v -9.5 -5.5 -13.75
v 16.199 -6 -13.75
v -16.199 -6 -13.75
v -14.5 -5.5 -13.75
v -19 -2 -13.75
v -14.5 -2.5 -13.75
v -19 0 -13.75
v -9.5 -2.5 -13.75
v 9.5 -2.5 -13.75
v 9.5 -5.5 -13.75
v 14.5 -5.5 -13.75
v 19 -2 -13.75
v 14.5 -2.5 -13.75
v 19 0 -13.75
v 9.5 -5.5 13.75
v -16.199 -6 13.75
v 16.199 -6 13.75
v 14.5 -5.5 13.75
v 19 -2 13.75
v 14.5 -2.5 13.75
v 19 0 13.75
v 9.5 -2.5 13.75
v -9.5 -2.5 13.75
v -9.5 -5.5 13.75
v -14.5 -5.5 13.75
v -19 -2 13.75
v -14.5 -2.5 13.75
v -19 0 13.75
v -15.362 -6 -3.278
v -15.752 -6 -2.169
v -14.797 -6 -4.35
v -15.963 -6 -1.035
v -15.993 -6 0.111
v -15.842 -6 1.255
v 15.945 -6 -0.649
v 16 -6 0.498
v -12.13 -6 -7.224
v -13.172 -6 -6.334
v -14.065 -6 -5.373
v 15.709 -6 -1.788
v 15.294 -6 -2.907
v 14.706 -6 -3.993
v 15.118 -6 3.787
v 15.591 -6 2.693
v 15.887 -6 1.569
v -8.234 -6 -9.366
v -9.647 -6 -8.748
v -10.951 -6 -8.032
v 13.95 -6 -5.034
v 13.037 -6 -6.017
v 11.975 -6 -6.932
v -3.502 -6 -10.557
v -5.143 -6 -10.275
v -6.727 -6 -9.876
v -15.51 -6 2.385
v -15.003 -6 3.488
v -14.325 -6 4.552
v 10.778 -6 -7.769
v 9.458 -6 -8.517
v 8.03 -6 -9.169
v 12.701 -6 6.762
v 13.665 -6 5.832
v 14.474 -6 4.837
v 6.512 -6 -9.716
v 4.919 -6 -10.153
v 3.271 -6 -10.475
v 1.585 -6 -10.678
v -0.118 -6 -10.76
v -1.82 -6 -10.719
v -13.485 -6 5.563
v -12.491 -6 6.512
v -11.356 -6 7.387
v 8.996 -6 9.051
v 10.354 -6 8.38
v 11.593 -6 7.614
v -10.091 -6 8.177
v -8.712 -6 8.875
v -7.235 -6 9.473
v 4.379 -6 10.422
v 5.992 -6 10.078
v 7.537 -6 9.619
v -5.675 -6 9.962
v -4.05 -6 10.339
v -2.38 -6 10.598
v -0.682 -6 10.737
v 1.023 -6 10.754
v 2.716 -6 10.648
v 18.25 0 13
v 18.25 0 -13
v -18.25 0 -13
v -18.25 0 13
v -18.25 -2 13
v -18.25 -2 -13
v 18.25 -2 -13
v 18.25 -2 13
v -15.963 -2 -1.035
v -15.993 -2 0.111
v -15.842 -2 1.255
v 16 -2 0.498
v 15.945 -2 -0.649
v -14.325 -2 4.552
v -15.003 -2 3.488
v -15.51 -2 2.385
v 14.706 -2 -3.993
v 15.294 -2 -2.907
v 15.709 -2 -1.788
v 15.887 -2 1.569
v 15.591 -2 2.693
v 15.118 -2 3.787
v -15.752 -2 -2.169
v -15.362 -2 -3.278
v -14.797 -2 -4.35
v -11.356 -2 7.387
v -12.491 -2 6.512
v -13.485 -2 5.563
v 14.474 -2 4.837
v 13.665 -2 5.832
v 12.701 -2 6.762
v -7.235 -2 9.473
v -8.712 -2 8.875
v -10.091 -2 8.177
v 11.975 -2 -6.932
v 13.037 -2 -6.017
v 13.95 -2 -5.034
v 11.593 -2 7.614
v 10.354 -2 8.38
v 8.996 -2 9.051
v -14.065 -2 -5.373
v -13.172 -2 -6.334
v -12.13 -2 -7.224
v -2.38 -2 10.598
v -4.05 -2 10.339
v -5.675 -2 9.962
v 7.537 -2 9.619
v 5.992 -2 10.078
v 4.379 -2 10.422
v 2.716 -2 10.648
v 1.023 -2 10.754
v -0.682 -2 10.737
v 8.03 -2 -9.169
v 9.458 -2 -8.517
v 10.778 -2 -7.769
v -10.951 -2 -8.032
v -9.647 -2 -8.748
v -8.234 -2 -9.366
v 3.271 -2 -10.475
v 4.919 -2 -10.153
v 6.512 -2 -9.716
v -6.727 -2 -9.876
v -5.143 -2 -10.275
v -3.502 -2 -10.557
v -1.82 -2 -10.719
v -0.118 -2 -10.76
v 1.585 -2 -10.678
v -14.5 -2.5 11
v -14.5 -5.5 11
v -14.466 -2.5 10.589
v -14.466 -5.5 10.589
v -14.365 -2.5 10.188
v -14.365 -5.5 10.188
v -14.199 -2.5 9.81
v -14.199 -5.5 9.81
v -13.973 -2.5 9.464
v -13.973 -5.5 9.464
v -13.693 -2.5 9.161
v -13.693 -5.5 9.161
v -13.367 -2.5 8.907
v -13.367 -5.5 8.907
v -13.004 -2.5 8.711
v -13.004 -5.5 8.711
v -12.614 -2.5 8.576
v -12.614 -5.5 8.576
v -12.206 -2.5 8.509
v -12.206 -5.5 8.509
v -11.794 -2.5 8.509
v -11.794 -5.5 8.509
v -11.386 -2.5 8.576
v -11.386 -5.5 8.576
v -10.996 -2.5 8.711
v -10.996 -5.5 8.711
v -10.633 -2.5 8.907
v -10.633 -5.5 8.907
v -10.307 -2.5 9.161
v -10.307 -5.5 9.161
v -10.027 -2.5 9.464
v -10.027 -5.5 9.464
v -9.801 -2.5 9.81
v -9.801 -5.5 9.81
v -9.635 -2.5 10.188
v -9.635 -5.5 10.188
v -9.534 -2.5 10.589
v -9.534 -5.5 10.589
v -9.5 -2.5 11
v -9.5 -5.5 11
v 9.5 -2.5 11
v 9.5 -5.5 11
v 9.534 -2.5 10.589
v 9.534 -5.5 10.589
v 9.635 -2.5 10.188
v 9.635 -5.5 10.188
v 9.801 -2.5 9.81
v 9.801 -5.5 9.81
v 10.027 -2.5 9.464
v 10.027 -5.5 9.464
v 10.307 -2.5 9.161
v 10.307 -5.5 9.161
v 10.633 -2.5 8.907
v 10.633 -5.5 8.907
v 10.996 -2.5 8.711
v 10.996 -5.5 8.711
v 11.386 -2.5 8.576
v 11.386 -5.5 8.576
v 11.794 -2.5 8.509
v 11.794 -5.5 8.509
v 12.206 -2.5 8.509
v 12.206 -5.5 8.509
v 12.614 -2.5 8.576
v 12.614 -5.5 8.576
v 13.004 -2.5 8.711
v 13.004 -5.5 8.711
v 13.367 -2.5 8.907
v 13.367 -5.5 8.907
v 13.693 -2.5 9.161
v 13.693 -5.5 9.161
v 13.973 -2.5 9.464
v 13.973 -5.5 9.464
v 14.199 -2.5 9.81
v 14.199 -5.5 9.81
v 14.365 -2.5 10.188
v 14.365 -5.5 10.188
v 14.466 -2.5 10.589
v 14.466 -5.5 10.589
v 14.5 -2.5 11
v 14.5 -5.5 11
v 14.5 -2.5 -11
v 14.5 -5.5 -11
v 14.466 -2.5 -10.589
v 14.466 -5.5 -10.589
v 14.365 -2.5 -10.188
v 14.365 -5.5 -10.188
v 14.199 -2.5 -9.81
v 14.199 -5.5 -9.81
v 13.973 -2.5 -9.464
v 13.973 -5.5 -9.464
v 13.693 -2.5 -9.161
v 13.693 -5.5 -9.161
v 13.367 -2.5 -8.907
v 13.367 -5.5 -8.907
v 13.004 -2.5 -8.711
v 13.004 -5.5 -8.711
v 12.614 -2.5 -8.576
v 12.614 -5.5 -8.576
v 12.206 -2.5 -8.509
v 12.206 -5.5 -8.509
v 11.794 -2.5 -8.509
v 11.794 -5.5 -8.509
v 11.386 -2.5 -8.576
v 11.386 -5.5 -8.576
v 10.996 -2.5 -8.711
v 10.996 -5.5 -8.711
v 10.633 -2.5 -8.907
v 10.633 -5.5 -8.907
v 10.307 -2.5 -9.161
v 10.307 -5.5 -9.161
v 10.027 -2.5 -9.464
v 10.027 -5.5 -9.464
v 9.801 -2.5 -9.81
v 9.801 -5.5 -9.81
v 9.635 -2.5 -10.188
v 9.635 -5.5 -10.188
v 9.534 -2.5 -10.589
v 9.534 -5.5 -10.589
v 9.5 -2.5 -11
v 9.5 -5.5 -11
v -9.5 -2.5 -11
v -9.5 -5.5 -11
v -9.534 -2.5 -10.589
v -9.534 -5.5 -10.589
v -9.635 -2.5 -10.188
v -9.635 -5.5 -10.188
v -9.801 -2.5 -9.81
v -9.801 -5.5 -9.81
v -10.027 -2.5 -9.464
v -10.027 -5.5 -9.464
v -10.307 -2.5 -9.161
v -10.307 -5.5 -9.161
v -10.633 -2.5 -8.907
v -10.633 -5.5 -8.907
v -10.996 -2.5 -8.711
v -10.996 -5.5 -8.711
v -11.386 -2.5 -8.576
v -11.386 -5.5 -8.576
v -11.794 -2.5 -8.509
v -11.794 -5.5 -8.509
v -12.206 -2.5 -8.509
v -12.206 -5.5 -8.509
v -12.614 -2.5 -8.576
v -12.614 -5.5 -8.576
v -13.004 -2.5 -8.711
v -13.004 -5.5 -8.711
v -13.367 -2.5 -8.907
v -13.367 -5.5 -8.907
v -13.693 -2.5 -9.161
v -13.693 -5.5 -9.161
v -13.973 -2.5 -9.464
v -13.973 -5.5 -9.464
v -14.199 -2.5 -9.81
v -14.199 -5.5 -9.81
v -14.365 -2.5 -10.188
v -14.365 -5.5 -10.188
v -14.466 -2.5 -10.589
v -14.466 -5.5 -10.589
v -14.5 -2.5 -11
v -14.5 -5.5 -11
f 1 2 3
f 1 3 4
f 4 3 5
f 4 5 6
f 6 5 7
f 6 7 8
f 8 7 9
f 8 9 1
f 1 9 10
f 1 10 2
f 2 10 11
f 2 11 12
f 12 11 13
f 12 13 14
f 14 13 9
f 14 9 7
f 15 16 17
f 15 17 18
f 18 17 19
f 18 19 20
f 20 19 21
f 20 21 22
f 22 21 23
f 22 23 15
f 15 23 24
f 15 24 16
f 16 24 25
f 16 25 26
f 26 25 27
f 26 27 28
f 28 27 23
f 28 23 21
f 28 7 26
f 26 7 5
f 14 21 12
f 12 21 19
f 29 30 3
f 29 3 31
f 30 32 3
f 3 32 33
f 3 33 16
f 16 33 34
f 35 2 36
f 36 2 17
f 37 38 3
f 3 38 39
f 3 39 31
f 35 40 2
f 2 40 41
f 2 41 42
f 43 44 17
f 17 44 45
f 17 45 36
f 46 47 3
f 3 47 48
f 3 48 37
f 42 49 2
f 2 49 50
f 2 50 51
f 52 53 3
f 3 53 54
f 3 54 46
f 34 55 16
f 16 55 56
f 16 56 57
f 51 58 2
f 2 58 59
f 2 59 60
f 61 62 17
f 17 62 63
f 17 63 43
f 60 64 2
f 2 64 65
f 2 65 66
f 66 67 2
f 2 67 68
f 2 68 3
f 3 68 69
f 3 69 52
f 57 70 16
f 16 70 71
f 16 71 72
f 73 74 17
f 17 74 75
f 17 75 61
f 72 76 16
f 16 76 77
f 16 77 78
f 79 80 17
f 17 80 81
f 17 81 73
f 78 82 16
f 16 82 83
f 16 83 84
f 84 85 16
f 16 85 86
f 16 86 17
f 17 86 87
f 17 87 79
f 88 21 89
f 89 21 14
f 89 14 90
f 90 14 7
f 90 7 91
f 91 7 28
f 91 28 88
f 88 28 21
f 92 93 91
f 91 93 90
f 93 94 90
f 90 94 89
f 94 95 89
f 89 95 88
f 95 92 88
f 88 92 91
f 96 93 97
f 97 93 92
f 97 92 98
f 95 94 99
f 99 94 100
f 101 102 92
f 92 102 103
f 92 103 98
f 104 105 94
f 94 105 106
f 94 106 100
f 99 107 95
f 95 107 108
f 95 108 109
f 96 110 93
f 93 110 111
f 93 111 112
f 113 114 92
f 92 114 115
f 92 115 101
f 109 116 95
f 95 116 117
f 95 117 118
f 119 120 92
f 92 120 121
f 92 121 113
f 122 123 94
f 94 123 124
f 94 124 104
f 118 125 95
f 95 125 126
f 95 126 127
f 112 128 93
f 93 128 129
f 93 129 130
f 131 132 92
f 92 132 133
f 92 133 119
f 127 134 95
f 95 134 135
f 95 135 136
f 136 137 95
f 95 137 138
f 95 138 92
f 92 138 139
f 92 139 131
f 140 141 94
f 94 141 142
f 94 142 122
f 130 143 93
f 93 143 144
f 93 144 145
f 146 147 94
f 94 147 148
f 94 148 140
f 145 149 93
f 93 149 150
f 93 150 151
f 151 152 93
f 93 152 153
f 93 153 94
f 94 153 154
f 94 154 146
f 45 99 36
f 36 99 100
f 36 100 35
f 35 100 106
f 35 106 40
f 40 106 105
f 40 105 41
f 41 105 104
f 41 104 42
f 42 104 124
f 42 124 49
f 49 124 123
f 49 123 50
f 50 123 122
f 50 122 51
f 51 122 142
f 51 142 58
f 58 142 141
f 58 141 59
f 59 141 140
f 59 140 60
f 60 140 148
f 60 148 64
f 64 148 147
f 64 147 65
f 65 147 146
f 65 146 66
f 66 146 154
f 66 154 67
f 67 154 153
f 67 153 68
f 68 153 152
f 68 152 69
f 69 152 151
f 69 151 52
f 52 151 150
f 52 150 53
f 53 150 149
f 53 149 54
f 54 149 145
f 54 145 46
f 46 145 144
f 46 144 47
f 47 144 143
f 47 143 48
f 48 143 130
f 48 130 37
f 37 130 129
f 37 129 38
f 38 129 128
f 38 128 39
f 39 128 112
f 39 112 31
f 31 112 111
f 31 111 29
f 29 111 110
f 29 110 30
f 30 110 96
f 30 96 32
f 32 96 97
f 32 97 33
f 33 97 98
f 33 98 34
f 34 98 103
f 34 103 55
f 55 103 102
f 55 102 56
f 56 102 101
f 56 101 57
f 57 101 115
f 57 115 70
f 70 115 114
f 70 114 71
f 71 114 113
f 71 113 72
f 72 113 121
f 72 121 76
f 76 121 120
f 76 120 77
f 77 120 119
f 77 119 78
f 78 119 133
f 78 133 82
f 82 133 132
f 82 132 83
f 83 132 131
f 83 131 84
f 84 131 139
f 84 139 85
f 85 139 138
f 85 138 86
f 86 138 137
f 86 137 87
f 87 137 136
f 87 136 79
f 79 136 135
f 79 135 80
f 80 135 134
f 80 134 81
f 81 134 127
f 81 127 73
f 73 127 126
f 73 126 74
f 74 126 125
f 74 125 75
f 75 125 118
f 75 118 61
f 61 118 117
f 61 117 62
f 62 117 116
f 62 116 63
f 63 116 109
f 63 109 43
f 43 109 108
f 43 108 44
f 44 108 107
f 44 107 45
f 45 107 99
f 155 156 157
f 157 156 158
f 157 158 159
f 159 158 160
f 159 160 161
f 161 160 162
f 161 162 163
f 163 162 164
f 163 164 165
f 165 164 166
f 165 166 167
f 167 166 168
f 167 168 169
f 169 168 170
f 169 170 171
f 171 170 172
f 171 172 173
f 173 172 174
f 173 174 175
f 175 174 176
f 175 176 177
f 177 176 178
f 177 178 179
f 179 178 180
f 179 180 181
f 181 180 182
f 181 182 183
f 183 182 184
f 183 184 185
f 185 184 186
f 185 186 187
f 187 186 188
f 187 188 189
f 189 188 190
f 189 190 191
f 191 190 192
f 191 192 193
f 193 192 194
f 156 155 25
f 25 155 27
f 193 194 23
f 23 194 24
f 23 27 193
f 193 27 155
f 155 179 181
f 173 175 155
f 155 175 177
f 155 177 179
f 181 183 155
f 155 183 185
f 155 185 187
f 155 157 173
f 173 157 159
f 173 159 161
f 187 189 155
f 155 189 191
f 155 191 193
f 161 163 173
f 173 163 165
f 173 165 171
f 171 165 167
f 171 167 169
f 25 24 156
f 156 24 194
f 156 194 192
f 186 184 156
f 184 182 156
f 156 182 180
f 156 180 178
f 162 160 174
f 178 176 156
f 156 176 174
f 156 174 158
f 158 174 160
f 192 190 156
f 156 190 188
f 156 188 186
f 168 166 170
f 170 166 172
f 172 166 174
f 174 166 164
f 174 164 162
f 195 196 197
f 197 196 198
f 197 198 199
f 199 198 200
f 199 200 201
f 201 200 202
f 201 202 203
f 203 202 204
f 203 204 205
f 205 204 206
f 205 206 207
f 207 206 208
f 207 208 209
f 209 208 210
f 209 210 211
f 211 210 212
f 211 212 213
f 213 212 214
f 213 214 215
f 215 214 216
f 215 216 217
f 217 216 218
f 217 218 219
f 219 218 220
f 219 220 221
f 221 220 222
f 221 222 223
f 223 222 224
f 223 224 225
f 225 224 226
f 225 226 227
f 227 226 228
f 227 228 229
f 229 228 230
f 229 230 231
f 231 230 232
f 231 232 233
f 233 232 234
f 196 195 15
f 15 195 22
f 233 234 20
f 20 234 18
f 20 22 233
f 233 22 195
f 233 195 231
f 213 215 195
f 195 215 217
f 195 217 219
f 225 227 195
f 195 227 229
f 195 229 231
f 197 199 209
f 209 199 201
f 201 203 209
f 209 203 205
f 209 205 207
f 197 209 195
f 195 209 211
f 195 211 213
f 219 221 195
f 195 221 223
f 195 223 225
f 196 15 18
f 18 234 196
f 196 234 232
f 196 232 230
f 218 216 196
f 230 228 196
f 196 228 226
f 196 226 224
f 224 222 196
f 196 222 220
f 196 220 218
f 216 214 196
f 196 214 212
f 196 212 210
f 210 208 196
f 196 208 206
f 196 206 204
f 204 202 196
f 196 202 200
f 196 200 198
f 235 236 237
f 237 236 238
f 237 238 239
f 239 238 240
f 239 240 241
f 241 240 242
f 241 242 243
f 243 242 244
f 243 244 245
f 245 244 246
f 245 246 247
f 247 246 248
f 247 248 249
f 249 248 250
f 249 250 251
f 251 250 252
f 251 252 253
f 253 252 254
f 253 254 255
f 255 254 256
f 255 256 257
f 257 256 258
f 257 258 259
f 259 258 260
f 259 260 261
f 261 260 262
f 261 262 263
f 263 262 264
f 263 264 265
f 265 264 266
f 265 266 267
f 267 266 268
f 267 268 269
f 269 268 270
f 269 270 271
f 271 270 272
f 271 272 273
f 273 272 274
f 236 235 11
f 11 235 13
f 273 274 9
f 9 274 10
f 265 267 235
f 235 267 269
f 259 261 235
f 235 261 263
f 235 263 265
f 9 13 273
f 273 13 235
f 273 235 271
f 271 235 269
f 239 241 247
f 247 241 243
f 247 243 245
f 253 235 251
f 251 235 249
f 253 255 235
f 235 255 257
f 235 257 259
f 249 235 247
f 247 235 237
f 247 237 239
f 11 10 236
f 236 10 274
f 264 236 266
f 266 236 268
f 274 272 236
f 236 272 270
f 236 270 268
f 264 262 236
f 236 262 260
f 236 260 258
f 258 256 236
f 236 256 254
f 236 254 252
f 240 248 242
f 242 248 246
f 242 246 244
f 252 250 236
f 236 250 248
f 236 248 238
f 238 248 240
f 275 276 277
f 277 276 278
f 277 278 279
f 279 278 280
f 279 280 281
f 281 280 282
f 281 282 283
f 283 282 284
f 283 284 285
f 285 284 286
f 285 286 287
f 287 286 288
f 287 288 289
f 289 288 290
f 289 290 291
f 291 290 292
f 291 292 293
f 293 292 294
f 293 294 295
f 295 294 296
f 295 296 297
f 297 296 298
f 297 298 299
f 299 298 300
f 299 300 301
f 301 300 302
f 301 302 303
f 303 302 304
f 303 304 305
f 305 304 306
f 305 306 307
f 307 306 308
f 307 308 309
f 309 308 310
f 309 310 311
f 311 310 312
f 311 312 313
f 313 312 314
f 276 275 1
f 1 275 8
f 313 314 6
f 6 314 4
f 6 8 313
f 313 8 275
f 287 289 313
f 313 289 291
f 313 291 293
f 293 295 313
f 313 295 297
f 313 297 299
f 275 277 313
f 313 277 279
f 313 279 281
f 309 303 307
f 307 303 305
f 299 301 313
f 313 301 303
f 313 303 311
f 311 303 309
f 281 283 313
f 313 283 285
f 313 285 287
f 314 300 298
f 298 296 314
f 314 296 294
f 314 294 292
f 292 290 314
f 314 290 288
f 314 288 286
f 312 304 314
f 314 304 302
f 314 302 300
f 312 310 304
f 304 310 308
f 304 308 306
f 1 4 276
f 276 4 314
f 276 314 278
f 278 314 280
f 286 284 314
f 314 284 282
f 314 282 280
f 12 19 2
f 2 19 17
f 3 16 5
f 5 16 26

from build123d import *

# Parameters (mm, degrees)
SKETCH1_W               = 38
SKETCH1_H               = 27.5
BOSS_EXTRUDE1_DEPTH     = 6
SKETCH2_W               = 36.5
SKETCH2_H               = 26
CUT_EXTRUDE1_DEPTH      = 2
SKETCH3_RX              = 16.007748615
SKETCH3_RY              = 10.755206101
CUT_EXTRUDE2_DEPTH      = 3
CUT_EXTRUDE2_DEPTH_BACK = 5
CUT_EXTRUDE4_DEPTH      = 1.5
CUT_EXTRUDE5_DEPTH      = 14.7500001
CUT_EXTRUDE5_DEPTH_BACK = 14.7500001


with BuildPart() as part:
    # Sketch1 → Boss-Extrude1 (new body)
    with BuildSketch(Plane(origin=(0, 0, 0), x_dir=(1, 0, 0), z_dir=(0, 1, 0))):
        Rectangle(SKETCH1_W, SKETCH1_H)
    extrude(amount=-BOSS_EXTRUDE1_DEPTH)

    # Sketch2 → Cut-Extrude1 (cut)
    with BuildSketch(Plane(origin=(0, 0, 0), x_dir=(1, 0, 0), z_dir=(0, 1, 0))):
        Rectangle(SKETCH2_W, SKETCH2_H)
    extrude(amount=-CUT_EXTRUDE1_DEPTH, mode=Mode.SUBTRACT)

    # Sketch3 → Cut-Extrude2 (cut, two sides)
    with BuildSketch(Plane(origin=(0, -2, 0), x_dir=(1, 0, 0), z_dir=(0, 1, 0))) as cut_extrude2_sk:
        with Locations(Location((0, 0), (0, 0, -1.782797699))):
            Ellipse(SKETCH3_RX, SKETCH3_RY)
    extrude(amount=CUT_EXTRUDE2_DEPTH, mode=Mode.SUBTRACT)
    extrude(cut_extrude2_sk.sketch, amount=-CUT_EXTRUDE2_DEPTH_BACK, mode=Mode.SUBTRACT)

    # Sketch8 → Cut-Extrude4 (cut, symmetric)
    with BuildSketch(Plane(origin=(0, -4, 0), x_dir=(-1, 0, 0), z_dir=(0, -1, 0))):
        with BuildLine():
            Line((-14.5, 11), (-14.5, 23.562662058))
            Line((-14.5, 23.562662058), (-9.5, 23.562662058))
            Line((-9.5, 23.562662058), (-9.5, 11))
            ThreePointArc((-9.5, 11), (-12, 8.5), (-14.5, 11))
        make_face()
        with BuildLine():
            Line((9.5, 23.562662058), (9.5, 11))
            ThreePointArc((9.5, 11), (12, 8.5), (14.5, 11))
            Line((14.5, 11), (14.5, 23.562662058))
            Line((14.5, 23.562662058), (9.5, 23.562662058))
        make_face()
        with BuildLine():
            Line((14.5, -11), (14.5, -23.562662058))
            Line((14.5, -23.562662058), (9.5, -23.562662058))
            Line((9.5, -23.562662058), (9.5, -11))
            ThreePointArc((9.5, -11), (12, -8.5), (14.5, -11))
        make_face()
        with BuildLine():
            Line((-9.5, -23.562662058), (-9.5, -11))
            ThreePointArc((-9.5, -11), (-12, -8.5), (-14.5, -11))
            Line((-14.5, -11), (-14.5, -23.562662058))
            Line((-14.5, -23.562662058), (-9.5, -23.562662058))
        make_face()
    extrude(amount=CUT_EXTRUDE4_DEPTH, both=True, mode=Mode.SUBTRACT)

    # Sketch9 → Cut-Extrude5 (cut, two sides)
    with BuildSketch(Plane.XY) as cut_extrude5_sk:
        Polygon((-19, -2), (-16.199169847, -6), (-19, -6), align=None)
        Polygon((16.199169847, -6), (19, -6), (19, -2), align=None)
    extrude(amount=CUT_EXTRUDE5_DEPTH, mode=Mode.SUBTRACT)
    extrude(cut_extrude5_sk.sketch, amount=-CUT_EXTRUDE5_DEPTH_BACK, mode=Mode.SUBTRACT)


solid = part.part
